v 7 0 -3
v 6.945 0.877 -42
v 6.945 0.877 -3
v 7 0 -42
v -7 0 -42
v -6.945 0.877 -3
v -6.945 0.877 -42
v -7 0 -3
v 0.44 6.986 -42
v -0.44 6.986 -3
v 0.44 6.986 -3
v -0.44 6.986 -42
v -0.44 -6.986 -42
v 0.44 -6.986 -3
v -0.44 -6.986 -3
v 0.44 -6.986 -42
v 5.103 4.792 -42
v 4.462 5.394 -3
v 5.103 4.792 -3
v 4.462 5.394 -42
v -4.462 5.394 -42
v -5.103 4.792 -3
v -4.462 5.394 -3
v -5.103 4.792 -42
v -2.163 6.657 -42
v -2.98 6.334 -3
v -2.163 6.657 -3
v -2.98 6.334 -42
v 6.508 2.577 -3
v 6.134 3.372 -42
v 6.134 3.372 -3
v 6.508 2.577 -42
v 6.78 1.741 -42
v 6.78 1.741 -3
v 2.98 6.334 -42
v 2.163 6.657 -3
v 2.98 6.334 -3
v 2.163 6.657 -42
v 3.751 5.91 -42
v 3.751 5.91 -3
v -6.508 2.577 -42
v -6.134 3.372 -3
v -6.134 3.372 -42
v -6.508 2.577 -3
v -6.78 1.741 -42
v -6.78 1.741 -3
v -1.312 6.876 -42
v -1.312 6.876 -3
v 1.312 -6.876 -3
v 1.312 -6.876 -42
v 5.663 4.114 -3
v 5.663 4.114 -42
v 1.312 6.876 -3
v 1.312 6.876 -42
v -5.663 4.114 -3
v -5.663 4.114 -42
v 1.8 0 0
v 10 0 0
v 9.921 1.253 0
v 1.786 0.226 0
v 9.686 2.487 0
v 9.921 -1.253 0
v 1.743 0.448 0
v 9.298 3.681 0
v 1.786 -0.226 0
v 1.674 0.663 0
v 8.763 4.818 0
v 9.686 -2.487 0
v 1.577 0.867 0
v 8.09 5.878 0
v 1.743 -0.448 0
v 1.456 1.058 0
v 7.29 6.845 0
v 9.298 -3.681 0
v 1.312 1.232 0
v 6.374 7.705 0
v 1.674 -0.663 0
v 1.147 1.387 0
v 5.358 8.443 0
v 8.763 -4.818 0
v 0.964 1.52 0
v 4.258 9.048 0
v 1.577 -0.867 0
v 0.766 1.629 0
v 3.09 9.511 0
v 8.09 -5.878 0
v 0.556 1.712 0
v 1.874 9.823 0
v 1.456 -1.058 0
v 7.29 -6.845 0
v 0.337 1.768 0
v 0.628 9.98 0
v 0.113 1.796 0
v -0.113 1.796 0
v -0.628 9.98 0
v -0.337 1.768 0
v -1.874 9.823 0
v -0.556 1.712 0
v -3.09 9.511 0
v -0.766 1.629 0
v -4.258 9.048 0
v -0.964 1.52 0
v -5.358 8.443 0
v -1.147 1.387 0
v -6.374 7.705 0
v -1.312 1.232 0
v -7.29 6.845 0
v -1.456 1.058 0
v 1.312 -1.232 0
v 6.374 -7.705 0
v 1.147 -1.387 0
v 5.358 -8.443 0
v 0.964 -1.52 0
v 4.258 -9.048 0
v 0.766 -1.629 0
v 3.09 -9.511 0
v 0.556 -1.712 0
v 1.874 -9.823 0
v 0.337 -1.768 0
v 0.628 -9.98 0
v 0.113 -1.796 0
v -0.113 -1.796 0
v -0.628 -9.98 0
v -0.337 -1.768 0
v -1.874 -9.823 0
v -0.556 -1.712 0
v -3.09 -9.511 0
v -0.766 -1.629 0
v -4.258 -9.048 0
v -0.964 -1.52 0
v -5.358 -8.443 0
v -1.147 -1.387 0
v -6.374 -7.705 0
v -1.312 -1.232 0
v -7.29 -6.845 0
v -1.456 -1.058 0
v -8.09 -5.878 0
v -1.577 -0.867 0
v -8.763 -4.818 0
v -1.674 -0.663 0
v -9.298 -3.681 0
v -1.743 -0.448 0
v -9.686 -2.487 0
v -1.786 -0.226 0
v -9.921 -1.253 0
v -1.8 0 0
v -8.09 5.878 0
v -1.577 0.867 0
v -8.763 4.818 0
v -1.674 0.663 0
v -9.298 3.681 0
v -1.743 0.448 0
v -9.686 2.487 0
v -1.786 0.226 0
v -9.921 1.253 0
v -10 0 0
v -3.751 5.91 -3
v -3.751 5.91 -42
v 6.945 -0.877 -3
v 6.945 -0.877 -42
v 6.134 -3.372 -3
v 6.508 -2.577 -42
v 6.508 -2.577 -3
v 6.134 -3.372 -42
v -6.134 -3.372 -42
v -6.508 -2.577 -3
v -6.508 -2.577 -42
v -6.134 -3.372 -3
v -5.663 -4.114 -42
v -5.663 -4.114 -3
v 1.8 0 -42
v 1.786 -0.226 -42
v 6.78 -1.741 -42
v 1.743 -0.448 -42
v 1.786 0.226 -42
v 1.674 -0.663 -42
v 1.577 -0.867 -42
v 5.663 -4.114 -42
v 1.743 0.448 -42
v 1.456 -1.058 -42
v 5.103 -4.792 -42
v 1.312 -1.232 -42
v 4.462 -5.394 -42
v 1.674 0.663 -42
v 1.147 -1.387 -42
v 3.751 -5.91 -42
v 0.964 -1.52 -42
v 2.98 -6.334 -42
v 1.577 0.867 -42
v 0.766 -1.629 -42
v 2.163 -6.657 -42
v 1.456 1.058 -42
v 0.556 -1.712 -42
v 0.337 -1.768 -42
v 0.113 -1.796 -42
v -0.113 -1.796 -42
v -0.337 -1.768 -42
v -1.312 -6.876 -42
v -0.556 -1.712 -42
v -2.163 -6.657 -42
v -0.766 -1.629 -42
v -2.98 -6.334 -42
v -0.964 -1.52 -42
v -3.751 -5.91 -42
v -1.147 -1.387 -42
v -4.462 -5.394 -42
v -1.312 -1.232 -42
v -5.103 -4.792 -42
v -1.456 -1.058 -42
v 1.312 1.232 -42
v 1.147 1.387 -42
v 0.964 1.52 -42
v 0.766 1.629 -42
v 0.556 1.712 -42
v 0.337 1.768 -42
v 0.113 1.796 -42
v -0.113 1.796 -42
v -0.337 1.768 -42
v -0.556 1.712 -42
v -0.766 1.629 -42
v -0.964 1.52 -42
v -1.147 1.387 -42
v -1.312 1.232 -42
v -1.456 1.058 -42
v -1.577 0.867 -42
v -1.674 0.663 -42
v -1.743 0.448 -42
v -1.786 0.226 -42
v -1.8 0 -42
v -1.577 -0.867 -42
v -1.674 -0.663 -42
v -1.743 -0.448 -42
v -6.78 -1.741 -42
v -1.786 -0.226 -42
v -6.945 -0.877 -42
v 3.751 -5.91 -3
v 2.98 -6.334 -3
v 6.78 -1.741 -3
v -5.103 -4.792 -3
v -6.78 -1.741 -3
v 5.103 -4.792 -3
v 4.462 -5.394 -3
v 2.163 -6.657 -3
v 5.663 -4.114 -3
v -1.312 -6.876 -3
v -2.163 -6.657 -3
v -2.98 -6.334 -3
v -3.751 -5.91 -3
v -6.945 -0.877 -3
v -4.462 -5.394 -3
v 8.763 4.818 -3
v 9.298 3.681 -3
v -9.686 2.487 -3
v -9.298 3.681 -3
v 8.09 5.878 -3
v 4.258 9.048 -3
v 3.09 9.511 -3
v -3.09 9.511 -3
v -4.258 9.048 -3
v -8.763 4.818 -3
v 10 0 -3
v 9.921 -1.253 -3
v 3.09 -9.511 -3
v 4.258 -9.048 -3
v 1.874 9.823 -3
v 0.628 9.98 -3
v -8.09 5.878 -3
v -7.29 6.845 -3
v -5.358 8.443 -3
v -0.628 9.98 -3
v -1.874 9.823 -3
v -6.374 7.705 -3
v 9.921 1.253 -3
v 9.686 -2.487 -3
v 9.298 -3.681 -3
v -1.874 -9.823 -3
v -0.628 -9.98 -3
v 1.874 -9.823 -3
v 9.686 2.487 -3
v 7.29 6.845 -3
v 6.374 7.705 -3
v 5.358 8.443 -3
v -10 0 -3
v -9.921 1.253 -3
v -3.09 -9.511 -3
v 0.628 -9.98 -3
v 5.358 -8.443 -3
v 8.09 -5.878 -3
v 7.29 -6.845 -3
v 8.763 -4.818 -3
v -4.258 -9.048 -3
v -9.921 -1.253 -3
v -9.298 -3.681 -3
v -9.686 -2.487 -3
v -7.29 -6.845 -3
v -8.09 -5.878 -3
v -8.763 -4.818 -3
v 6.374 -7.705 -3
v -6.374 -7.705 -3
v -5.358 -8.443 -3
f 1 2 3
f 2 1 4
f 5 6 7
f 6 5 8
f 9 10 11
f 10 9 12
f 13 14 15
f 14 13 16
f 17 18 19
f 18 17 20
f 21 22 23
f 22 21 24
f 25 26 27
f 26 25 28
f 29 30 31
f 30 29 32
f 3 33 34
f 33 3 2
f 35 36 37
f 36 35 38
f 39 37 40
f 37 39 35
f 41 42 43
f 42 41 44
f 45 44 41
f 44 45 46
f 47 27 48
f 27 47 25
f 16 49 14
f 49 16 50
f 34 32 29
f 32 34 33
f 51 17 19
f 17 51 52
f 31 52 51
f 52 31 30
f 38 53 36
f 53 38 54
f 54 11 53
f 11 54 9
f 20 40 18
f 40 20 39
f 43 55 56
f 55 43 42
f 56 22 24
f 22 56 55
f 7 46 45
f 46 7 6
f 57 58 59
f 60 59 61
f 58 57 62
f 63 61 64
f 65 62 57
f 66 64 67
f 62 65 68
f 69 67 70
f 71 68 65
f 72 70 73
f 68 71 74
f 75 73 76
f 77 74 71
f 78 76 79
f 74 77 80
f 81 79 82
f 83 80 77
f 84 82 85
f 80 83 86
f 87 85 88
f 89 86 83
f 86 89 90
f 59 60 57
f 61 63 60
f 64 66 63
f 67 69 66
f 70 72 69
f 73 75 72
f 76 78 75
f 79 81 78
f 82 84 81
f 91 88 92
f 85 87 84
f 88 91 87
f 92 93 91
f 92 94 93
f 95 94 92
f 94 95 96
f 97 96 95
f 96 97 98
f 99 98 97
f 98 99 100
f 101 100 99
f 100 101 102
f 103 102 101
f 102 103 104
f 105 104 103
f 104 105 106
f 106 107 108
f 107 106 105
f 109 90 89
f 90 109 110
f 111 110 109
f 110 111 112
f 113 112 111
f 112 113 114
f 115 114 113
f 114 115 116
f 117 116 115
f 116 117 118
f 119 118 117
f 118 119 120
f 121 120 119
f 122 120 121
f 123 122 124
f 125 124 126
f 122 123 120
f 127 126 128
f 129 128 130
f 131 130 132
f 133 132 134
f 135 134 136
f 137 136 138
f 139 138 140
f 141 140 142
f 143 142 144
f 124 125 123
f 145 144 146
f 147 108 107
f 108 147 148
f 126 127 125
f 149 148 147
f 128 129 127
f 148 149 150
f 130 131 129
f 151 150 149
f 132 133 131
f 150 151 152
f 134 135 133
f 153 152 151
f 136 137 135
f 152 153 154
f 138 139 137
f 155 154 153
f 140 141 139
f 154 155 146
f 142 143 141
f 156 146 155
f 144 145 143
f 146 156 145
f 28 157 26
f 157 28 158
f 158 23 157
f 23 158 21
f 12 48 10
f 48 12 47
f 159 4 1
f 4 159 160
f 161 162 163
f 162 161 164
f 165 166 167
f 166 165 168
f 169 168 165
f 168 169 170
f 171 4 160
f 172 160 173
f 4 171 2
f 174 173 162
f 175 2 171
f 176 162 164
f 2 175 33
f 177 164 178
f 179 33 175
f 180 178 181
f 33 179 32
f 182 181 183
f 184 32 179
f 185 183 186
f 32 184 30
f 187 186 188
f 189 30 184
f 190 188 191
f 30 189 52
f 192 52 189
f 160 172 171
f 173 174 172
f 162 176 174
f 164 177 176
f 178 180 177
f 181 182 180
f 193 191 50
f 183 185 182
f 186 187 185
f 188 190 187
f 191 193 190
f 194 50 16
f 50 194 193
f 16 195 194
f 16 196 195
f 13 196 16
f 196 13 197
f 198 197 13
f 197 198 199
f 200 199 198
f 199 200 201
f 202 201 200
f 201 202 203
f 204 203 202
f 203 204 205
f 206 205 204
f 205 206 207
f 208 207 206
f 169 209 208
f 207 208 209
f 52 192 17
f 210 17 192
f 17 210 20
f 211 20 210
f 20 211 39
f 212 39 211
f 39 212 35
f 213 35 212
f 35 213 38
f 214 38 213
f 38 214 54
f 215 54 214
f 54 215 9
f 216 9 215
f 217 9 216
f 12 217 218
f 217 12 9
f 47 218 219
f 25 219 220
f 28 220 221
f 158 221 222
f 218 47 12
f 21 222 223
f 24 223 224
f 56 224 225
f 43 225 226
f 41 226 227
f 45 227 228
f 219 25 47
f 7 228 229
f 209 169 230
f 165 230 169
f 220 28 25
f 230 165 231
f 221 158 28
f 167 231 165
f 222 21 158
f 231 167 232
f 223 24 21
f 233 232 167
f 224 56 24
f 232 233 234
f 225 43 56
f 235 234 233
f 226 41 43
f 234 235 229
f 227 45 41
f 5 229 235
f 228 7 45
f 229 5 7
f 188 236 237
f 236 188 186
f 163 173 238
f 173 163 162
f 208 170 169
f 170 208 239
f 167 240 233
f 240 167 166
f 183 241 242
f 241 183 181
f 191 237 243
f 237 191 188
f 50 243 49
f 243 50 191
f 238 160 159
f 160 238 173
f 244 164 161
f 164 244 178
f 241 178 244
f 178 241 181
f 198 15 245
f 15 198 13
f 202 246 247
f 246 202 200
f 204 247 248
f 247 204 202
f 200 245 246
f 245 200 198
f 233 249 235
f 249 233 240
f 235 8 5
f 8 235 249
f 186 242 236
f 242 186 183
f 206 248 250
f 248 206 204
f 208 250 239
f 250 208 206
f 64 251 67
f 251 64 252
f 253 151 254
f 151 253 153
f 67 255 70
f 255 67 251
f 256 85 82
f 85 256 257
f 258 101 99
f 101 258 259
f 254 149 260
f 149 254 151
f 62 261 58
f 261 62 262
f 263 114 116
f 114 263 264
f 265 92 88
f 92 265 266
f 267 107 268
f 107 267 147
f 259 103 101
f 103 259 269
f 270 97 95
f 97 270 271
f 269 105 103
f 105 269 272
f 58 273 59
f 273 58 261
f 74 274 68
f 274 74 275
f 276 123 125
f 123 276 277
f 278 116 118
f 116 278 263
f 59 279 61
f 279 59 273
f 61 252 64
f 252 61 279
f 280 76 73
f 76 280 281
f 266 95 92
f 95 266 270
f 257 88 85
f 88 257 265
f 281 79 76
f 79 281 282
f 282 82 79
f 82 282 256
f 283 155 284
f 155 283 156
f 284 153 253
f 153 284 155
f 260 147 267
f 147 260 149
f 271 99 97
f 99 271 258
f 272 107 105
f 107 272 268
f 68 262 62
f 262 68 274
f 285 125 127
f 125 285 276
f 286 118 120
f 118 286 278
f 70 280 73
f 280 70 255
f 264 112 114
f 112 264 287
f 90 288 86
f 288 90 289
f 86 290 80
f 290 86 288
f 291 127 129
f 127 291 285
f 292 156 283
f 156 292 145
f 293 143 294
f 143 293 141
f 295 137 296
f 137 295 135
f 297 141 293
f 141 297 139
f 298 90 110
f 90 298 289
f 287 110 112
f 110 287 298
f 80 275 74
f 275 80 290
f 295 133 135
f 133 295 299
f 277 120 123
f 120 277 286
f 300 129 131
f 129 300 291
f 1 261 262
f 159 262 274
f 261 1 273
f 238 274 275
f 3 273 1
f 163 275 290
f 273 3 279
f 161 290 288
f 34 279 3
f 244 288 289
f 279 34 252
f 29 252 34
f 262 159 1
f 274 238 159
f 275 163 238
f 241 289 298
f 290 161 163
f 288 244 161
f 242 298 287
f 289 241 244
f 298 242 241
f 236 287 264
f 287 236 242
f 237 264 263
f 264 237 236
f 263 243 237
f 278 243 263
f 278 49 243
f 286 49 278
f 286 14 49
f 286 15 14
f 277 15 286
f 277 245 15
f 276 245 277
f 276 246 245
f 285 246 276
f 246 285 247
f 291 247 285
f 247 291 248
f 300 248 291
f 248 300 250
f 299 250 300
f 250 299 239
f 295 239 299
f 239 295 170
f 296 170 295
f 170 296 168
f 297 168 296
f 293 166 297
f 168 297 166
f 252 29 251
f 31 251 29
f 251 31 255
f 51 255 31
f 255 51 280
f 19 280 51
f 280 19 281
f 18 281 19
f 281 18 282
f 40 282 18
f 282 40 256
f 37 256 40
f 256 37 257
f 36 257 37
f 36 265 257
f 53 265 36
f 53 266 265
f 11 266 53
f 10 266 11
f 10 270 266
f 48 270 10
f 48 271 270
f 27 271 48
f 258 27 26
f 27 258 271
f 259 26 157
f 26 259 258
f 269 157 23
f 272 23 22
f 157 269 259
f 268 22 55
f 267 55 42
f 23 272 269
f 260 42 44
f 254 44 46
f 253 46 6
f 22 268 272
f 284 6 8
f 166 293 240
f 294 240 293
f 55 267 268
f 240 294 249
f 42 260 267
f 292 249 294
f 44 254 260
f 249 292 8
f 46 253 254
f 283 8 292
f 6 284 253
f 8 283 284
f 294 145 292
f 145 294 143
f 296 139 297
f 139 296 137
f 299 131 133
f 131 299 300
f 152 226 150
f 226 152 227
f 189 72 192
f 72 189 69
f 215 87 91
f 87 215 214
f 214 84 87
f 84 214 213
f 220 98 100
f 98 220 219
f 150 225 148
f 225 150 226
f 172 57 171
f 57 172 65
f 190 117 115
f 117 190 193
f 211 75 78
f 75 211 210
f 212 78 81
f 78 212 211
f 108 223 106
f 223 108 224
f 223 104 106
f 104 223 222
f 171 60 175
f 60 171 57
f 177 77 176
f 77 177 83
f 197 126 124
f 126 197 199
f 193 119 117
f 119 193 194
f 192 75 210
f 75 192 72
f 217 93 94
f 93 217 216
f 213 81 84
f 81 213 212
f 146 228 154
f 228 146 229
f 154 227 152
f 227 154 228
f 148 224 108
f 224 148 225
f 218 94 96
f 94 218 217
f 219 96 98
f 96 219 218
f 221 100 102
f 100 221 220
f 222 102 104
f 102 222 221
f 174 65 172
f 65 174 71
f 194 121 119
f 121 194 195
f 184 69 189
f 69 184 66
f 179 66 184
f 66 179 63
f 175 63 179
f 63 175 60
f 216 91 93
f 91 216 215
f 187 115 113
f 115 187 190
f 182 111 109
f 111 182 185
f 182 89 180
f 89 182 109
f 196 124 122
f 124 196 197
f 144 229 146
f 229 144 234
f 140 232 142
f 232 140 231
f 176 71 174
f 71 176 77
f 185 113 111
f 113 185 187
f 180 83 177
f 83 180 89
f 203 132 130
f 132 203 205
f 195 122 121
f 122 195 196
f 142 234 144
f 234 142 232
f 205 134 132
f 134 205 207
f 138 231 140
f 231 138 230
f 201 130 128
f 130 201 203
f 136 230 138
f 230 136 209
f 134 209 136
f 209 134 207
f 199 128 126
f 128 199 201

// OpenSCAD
$fn = 50;


difference() {
	union() {
		translate(v = [0, 0, -42.0000000000]) {
			cylinder(h = 42, r = 7.0000000000);
		}
		translate(v = [0, 0, -3.0000000000]) {
			cylinder(h = 3, r = 10.0000000000);
		}
	}
	union() {
		#translate(v = [0, 0, -42]) {
			cylinder(h = 42, r = 1.8000000000);
		}
	}
}
